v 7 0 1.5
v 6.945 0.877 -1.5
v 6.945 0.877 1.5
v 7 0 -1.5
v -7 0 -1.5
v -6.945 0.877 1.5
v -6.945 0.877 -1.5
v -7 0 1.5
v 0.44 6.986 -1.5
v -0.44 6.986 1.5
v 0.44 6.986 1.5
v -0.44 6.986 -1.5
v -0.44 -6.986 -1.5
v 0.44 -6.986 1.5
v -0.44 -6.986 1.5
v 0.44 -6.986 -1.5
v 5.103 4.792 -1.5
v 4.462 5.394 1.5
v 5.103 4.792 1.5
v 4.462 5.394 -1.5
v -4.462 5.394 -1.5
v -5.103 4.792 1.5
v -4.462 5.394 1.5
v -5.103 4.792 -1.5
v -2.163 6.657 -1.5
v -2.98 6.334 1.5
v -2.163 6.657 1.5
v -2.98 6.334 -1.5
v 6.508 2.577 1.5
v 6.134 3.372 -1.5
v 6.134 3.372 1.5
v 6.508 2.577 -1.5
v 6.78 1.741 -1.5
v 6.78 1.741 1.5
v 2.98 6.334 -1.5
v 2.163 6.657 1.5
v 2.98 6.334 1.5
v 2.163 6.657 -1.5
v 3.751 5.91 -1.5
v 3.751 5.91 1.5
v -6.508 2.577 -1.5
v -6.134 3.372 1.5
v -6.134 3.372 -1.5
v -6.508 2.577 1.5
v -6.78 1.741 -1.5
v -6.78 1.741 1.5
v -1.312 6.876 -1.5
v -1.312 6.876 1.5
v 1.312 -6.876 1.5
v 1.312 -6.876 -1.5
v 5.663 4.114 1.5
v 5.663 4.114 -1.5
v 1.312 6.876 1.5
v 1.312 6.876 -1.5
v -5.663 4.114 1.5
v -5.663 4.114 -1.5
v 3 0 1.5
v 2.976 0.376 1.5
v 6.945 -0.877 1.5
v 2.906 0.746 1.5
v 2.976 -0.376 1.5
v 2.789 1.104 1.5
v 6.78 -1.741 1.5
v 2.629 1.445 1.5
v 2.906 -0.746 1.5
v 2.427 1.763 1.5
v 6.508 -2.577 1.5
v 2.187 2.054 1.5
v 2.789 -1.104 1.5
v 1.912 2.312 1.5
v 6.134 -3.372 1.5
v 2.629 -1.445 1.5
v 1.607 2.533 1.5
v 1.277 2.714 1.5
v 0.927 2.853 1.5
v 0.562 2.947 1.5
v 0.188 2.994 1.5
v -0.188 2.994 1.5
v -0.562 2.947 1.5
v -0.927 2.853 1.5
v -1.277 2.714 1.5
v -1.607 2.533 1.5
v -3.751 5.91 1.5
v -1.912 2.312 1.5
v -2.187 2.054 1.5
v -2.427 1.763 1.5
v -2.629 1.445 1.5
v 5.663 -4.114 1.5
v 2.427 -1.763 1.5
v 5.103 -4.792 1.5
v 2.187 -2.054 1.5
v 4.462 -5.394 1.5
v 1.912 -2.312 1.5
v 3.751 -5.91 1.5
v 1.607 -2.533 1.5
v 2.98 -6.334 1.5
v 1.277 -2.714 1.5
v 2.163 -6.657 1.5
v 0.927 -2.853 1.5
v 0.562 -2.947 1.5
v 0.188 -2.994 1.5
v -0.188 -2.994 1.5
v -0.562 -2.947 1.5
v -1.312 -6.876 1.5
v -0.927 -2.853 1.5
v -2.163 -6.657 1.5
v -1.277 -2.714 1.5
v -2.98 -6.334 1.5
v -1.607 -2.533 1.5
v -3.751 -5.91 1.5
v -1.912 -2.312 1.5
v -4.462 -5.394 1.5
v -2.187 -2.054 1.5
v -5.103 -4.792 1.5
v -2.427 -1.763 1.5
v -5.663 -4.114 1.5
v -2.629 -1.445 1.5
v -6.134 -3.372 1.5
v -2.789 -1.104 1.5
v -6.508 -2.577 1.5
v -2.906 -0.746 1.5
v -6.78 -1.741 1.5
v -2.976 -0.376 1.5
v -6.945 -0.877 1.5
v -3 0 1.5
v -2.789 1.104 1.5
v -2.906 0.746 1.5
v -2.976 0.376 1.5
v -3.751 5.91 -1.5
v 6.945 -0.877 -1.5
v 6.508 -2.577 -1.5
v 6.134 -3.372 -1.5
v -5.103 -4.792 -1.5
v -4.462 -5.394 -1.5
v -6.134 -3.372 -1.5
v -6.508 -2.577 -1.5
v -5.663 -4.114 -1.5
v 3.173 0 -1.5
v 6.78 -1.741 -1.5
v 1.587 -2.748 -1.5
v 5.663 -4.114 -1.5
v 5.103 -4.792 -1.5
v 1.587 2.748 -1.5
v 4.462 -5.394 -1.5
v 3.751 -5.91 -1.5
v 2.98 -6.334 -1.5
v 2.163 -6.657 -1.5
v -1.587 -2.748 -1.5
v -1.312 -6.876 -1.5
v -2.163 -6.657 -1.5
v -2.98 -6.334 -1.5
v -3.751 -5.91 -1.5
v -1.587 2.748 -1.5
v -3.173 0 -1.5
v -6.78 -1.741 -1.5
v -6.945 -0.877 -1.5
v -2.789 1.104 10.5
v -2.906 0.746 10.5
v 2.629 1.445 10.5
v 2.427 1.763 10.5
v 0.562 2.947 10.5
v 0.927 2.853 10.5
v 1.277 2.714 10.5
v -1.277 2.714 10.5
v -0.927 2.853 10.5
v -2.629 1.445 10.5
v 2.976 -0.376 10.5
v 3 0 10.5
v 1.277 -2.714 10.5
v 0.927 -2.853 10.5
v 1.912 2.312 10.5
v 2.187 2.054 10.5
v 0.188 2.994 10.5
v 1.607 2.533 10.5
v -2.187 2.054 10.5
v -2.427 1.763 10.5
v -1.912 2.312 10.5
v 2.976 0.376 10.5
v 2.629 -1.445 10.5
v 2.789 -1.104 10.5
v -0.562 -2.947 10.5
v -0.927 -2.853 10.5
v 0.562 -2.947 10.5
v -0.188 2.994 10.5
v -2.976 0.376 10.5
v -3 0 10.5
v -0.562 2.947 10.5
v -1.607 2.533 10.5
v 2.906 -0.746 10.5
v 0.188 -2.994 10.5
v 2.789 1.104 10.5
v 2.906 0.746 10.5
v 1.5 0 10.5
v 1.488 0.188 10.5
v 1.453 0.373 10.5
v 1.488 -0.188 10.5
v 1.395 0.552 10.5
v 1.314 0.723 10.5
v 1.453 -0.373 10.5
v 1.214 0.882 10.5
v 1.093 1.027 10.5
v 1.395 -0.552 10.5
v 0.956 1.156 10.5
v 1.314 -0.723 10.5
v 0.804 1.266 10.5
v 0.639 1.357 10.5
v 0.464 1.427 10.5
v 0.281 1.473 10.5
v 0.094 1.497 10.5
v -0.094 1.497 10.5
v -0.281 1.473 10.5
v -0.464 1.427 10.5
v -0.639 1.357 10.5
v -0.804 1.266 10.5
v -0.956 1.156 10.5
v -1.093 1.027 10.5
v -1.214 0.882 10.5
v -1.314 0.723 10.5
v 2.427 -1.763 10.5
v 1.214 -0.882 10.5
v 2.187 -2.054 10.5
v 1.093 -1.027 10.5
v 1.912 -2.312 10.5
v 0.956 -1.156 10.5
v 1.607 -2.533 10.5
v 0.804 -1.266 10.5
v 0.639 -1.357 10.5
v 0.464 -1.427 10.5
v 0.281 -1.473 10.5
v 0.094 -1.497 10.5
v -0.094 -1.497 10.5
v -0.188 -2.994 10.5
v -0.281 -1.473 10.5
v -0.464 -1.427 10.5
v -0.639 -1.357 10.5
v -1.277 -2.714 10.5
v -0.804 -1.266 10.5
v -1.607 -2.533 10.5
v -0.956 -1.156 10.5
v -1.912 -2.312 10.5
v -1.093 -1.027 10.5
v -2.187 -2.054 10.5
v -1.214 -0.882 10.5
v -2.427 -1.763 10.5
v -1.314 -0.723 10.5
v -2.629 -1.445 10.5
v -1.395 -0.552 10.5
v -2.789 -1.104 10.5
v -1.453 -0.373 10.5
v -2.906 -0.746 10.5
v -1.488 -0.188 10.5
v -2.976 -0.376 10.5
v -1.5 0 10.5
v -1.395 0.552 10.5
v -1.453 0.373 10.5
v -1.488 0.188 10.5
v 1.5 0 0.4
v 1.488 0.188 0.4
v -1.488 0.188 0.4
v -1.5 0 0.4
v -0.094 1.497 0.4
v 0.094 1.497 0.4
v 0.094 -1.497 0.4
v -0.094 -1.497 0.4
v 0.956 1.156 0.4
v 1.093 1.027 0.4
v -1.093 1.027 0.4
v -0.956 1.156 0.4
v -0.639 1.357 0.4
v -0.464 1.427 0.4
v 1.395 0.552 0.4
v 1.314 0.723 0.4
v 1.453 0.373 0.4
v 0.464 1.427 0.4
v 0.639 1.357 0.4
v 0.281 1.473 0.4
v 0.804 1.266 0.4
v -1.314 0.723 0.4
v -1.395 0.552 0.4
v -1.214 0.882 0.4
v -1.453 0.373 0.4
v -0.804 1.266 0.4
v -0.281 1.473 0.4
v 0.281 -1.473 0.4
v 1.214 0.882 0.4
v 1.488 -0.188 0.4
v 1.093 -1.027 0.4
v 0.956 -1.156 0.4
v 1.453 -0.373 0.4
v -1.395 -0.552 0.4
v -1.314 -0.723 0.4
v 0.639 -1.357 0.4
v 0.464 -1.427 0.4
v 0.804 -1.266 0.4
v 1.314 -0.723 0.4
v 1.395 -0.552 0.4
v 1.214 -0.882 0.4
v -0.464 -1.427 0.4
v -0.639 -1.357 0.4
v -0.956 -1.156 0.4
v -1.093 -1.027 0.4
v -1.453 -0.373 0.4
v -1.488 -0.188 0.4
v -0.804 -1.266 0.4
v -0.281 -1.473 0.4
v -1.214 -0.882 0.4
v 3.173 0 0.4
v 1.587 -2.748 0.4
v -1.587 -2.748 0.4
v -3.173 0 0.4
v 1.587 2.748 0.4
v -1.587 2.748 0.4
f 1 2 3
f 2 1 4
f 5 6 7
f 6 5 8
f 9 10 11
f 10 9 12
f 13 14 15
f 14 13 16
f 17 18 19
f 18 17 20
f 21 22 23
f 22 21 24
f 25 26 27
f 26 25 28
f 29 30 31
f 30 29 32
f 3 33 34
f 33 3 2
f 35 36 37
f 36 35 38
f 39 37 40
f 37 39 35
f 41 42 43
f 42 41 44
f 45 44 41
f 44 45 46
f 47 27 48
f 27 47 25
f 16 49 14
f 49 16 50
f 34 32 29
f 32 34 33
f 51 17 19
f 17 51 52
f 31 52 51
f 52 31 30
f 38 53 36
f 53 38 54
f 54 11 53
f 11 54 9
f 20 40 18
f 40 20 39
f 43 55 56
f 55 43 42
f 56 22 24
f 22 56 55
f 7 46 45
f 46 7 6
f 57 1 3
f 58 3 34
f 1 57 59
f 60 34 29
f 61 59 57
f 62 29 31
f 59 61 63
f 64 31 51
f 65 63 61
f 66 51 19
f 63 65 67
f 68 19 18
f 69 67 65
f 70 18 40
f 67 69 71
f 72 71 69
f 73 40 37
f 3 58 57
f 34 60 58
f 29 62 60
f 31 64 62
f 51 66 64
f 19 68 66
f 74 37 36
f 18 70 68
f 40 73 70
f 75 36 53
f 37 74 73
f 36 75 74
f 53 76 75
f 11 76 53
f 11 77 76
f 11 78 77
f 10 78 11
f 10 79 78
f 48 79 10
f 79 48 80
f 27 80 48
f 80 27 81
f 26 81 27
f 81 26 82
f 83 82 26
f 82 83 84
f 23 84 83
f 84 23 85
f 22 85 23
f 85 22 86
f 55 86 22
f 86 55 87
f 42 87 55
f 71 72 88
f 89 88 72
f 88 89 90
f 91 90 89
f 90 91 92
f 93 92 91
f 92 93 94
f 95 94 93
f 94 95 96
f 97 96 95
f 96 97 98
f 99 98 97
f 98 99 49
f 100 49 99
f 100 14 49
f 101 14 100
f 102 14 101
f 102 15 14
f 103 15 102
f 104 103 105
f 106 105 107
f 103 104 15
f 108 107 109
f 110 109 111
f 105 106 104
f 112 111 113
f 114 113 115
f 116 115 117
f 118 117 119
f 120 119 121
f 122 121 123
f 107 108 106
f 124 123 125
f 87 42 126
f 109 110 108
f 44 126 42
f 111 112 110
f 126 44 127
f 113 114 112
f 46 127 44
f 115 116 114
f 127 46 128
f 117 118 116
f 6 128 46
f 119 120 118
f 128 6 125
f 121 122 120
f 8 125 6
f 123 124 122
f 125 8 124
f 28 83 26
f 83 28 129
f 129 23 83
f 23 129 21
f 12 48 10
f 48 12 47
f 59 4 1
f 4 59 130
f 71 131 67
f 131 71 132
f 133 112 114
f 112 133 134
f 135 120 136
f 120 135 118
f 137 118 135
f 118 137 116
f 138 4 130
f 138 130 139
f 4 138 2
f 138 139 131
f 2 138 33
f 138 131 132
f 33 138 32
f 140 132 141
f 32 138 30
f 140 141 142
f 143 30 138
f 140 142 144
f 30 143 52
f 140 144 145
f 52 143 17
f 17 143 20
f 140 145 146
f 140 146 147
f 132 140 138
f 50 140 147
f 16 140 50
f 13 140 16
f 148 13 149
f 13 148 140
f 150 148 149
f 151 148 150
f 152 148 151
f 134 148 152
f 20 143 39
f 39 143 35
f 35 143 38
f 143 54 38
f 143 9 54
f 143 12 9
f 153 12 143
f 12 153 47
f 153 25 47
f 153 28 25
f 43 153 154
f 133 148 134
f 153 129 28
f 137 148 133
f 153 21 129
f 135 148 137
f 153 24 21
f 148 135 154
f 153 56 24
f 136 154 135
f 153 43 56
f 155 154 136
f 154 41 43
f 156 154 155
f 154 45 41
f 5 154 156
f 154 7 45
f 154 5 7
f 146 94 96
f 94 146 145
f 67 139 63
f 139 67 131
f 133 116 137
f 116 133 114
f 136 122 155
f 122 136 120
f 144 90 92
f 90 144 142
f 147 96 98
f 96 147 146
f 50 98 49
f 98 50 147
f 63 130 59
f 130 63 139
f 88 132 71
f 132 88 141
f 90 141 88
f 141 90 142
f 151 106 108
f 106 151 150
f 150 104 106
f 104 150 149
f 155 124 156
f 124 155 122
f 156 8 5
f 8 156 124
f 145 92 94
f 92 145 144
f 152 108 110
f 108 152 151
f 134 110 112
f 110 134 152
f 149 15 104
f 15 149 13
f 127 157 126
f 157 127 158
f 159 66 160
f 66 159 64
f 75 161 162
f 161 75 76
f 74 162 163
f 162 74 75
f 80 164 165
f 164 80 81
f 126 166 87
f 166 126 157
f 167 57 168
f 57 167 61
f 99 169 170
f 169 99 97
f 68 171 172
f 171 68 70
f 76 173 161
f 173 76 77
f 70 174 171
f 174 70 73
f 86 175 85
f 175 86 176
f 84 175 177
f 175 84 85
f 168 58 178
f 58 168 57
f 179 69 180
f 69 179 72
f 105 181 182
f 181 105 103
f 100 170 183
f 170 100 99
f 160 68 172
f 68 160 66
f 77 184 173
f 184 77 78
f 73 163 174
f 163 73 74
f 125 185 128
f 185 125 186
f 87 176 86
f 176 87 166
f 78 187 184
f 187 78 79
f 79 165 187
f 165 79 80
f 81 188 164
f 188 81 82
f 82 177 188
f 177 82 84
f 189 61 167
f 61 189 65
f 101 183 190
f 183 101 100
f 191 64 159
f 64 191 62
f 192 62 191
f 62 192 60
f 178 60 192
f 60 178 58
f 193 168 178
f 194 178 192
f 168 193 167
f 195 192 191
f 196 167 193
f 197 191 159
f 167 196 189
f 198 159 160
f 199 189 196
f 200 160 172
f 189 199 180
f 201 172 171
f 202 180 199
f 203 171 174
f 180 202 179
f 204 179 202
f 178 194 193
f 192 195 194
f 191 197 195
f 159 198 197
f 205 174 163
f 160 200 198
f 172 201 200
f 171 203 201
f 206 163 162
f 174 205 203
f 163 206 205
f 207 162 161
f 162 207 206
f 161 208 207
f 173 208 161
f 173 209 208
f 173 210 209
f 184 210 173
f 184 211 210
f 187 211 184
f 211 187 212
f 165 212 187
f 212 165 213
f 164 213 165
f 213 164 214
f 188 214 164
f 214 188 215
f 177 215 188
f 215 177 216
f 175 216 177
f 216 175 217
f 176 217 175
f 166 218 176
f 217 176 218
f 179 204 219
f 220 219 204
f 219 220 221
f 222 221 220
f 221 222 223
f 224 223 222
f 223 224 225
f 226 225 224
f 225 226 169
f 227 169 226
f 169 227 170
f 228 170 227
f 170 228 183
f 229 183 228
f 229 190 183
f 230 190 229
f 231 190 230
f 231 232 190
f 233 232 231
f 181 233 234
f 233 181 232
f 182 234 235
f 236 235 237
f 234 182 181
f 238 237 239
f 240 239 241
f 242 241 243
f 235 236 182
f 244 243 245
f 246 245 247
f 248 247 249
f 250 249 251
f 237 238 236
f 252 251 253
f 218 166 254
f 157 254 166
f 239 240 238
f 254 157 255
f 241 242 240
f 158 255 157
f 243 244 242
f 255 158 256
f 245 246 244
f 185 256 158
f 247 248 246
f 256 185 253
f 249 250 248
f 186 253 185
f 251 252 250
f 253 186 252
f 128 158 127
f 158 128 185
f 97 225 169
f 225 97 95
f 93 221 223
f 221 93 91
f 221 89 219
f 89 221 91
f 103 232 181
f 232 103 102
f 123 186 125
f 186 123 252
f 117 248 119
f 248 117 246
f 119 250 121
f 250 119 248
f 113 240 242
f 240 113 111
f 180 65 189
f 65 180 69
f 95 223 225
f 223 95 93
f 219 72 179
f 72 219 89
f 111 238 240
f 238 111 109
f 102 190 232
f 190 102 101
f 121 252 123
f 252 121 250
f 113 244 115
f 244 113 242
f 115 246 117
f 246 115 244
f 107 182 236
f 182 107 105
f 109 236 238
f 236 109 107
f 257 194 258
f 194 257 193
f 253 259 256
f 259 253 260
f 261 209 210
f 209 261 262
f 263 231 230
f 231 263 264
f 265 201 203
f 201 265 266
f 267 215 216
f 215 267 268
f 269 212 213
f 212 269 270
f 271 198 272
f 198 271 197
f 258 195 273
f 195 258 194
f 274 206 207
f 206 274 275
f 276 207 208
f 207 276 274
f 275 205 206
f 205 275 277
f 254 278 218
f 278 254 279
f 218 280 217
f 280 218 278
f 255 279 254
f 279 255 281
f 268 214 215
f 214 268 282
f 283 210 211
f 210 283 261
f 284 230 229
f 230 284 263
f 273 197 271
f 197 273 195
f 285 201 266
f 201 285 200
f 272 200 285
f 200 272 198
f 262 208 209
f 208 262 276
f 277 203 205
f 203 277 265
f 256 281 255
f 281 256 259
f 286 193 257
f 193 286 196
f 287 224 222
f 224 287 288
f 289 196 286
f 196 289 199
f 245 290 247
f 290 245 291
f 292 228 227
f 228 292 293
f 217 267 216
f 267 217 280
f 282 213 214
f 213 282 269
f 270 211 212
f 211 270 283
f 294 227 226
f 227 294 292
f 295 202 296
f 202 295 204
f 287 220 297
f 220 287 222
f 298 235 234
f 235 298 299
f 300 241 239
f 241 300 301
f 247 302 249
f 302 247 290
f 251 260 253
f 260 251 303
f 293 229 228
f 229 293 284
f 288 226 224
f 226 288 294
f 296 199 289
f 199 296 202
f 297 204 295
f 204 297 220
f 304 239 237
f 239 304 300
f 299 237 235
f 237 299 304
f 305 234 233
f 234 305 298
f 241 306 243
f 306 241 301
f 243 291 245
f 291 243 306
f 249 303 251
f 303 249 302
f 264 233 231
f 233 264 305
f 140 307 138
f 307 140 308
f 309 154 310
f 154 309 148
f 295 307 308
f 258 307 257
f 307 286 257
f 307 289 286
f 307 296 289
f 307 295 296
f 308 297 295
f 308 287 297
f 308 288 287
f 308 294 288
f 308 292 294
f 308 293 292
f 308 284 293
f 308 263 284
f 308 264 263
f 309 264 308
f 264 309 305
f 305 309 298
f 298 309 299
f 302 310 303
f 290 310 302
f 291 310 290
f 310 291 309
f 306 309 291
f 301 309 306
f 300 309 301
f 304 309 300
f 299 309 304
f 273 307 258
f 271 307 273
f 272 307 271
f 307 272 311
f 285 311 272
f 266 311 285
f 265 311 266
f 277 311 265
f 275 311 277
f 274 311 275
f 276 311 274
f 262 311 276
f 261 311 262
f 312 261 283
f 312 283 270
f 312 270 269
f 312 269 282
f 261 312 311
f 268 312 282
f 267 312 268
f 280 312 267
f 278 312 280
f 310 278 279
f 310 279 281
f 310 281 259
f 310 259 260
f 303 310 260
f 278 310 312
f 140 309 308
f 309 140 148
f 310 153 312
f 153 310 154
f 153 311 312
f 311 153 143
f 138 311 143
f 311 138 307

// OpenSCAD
$fn = 50;


difference() {
	union() {
		translate(v = [0, 0, -1.5000000000]) {
			rotate(a = [0, 0, 0]) {
				cylinder(h = 3, r = 7.0000000000);
			}
		}
		translate(v = [0, 0, -1.5000000000]) {
			rotate(a = [0, 0, 0]) {
				cylinder(h = 12, r = 3.0000000000);
			}
		}
	}
	union() {
		translate(v = [0, 0, -125.0000000000]) {
			rotate(a = [0, 0, 0]) {
				cylinder(h = 250, r = 1.5000000000);
			}
		}
		translate(v = [0, 0, -2.1000000000]) {
			rotate(a = [0, 0, 0]) {
				#translate(v = [0, 0, 0]) {
					rotate(a = [0, 0, 0]) {
						linear_extrude(height = 2.5000000000) {
							polygon(points = [[3.1735000000, 0.0000000000], [1.5867500000, 2.7483316189], [-1.5867500000, 2.7483316189], [-3.1735000000, 0.0000000000], [-1.5867500000, -2.7483316189], [1.5867500000, -2.7483316189]]);
						}
					}
				}
			}
		}
	}
}
